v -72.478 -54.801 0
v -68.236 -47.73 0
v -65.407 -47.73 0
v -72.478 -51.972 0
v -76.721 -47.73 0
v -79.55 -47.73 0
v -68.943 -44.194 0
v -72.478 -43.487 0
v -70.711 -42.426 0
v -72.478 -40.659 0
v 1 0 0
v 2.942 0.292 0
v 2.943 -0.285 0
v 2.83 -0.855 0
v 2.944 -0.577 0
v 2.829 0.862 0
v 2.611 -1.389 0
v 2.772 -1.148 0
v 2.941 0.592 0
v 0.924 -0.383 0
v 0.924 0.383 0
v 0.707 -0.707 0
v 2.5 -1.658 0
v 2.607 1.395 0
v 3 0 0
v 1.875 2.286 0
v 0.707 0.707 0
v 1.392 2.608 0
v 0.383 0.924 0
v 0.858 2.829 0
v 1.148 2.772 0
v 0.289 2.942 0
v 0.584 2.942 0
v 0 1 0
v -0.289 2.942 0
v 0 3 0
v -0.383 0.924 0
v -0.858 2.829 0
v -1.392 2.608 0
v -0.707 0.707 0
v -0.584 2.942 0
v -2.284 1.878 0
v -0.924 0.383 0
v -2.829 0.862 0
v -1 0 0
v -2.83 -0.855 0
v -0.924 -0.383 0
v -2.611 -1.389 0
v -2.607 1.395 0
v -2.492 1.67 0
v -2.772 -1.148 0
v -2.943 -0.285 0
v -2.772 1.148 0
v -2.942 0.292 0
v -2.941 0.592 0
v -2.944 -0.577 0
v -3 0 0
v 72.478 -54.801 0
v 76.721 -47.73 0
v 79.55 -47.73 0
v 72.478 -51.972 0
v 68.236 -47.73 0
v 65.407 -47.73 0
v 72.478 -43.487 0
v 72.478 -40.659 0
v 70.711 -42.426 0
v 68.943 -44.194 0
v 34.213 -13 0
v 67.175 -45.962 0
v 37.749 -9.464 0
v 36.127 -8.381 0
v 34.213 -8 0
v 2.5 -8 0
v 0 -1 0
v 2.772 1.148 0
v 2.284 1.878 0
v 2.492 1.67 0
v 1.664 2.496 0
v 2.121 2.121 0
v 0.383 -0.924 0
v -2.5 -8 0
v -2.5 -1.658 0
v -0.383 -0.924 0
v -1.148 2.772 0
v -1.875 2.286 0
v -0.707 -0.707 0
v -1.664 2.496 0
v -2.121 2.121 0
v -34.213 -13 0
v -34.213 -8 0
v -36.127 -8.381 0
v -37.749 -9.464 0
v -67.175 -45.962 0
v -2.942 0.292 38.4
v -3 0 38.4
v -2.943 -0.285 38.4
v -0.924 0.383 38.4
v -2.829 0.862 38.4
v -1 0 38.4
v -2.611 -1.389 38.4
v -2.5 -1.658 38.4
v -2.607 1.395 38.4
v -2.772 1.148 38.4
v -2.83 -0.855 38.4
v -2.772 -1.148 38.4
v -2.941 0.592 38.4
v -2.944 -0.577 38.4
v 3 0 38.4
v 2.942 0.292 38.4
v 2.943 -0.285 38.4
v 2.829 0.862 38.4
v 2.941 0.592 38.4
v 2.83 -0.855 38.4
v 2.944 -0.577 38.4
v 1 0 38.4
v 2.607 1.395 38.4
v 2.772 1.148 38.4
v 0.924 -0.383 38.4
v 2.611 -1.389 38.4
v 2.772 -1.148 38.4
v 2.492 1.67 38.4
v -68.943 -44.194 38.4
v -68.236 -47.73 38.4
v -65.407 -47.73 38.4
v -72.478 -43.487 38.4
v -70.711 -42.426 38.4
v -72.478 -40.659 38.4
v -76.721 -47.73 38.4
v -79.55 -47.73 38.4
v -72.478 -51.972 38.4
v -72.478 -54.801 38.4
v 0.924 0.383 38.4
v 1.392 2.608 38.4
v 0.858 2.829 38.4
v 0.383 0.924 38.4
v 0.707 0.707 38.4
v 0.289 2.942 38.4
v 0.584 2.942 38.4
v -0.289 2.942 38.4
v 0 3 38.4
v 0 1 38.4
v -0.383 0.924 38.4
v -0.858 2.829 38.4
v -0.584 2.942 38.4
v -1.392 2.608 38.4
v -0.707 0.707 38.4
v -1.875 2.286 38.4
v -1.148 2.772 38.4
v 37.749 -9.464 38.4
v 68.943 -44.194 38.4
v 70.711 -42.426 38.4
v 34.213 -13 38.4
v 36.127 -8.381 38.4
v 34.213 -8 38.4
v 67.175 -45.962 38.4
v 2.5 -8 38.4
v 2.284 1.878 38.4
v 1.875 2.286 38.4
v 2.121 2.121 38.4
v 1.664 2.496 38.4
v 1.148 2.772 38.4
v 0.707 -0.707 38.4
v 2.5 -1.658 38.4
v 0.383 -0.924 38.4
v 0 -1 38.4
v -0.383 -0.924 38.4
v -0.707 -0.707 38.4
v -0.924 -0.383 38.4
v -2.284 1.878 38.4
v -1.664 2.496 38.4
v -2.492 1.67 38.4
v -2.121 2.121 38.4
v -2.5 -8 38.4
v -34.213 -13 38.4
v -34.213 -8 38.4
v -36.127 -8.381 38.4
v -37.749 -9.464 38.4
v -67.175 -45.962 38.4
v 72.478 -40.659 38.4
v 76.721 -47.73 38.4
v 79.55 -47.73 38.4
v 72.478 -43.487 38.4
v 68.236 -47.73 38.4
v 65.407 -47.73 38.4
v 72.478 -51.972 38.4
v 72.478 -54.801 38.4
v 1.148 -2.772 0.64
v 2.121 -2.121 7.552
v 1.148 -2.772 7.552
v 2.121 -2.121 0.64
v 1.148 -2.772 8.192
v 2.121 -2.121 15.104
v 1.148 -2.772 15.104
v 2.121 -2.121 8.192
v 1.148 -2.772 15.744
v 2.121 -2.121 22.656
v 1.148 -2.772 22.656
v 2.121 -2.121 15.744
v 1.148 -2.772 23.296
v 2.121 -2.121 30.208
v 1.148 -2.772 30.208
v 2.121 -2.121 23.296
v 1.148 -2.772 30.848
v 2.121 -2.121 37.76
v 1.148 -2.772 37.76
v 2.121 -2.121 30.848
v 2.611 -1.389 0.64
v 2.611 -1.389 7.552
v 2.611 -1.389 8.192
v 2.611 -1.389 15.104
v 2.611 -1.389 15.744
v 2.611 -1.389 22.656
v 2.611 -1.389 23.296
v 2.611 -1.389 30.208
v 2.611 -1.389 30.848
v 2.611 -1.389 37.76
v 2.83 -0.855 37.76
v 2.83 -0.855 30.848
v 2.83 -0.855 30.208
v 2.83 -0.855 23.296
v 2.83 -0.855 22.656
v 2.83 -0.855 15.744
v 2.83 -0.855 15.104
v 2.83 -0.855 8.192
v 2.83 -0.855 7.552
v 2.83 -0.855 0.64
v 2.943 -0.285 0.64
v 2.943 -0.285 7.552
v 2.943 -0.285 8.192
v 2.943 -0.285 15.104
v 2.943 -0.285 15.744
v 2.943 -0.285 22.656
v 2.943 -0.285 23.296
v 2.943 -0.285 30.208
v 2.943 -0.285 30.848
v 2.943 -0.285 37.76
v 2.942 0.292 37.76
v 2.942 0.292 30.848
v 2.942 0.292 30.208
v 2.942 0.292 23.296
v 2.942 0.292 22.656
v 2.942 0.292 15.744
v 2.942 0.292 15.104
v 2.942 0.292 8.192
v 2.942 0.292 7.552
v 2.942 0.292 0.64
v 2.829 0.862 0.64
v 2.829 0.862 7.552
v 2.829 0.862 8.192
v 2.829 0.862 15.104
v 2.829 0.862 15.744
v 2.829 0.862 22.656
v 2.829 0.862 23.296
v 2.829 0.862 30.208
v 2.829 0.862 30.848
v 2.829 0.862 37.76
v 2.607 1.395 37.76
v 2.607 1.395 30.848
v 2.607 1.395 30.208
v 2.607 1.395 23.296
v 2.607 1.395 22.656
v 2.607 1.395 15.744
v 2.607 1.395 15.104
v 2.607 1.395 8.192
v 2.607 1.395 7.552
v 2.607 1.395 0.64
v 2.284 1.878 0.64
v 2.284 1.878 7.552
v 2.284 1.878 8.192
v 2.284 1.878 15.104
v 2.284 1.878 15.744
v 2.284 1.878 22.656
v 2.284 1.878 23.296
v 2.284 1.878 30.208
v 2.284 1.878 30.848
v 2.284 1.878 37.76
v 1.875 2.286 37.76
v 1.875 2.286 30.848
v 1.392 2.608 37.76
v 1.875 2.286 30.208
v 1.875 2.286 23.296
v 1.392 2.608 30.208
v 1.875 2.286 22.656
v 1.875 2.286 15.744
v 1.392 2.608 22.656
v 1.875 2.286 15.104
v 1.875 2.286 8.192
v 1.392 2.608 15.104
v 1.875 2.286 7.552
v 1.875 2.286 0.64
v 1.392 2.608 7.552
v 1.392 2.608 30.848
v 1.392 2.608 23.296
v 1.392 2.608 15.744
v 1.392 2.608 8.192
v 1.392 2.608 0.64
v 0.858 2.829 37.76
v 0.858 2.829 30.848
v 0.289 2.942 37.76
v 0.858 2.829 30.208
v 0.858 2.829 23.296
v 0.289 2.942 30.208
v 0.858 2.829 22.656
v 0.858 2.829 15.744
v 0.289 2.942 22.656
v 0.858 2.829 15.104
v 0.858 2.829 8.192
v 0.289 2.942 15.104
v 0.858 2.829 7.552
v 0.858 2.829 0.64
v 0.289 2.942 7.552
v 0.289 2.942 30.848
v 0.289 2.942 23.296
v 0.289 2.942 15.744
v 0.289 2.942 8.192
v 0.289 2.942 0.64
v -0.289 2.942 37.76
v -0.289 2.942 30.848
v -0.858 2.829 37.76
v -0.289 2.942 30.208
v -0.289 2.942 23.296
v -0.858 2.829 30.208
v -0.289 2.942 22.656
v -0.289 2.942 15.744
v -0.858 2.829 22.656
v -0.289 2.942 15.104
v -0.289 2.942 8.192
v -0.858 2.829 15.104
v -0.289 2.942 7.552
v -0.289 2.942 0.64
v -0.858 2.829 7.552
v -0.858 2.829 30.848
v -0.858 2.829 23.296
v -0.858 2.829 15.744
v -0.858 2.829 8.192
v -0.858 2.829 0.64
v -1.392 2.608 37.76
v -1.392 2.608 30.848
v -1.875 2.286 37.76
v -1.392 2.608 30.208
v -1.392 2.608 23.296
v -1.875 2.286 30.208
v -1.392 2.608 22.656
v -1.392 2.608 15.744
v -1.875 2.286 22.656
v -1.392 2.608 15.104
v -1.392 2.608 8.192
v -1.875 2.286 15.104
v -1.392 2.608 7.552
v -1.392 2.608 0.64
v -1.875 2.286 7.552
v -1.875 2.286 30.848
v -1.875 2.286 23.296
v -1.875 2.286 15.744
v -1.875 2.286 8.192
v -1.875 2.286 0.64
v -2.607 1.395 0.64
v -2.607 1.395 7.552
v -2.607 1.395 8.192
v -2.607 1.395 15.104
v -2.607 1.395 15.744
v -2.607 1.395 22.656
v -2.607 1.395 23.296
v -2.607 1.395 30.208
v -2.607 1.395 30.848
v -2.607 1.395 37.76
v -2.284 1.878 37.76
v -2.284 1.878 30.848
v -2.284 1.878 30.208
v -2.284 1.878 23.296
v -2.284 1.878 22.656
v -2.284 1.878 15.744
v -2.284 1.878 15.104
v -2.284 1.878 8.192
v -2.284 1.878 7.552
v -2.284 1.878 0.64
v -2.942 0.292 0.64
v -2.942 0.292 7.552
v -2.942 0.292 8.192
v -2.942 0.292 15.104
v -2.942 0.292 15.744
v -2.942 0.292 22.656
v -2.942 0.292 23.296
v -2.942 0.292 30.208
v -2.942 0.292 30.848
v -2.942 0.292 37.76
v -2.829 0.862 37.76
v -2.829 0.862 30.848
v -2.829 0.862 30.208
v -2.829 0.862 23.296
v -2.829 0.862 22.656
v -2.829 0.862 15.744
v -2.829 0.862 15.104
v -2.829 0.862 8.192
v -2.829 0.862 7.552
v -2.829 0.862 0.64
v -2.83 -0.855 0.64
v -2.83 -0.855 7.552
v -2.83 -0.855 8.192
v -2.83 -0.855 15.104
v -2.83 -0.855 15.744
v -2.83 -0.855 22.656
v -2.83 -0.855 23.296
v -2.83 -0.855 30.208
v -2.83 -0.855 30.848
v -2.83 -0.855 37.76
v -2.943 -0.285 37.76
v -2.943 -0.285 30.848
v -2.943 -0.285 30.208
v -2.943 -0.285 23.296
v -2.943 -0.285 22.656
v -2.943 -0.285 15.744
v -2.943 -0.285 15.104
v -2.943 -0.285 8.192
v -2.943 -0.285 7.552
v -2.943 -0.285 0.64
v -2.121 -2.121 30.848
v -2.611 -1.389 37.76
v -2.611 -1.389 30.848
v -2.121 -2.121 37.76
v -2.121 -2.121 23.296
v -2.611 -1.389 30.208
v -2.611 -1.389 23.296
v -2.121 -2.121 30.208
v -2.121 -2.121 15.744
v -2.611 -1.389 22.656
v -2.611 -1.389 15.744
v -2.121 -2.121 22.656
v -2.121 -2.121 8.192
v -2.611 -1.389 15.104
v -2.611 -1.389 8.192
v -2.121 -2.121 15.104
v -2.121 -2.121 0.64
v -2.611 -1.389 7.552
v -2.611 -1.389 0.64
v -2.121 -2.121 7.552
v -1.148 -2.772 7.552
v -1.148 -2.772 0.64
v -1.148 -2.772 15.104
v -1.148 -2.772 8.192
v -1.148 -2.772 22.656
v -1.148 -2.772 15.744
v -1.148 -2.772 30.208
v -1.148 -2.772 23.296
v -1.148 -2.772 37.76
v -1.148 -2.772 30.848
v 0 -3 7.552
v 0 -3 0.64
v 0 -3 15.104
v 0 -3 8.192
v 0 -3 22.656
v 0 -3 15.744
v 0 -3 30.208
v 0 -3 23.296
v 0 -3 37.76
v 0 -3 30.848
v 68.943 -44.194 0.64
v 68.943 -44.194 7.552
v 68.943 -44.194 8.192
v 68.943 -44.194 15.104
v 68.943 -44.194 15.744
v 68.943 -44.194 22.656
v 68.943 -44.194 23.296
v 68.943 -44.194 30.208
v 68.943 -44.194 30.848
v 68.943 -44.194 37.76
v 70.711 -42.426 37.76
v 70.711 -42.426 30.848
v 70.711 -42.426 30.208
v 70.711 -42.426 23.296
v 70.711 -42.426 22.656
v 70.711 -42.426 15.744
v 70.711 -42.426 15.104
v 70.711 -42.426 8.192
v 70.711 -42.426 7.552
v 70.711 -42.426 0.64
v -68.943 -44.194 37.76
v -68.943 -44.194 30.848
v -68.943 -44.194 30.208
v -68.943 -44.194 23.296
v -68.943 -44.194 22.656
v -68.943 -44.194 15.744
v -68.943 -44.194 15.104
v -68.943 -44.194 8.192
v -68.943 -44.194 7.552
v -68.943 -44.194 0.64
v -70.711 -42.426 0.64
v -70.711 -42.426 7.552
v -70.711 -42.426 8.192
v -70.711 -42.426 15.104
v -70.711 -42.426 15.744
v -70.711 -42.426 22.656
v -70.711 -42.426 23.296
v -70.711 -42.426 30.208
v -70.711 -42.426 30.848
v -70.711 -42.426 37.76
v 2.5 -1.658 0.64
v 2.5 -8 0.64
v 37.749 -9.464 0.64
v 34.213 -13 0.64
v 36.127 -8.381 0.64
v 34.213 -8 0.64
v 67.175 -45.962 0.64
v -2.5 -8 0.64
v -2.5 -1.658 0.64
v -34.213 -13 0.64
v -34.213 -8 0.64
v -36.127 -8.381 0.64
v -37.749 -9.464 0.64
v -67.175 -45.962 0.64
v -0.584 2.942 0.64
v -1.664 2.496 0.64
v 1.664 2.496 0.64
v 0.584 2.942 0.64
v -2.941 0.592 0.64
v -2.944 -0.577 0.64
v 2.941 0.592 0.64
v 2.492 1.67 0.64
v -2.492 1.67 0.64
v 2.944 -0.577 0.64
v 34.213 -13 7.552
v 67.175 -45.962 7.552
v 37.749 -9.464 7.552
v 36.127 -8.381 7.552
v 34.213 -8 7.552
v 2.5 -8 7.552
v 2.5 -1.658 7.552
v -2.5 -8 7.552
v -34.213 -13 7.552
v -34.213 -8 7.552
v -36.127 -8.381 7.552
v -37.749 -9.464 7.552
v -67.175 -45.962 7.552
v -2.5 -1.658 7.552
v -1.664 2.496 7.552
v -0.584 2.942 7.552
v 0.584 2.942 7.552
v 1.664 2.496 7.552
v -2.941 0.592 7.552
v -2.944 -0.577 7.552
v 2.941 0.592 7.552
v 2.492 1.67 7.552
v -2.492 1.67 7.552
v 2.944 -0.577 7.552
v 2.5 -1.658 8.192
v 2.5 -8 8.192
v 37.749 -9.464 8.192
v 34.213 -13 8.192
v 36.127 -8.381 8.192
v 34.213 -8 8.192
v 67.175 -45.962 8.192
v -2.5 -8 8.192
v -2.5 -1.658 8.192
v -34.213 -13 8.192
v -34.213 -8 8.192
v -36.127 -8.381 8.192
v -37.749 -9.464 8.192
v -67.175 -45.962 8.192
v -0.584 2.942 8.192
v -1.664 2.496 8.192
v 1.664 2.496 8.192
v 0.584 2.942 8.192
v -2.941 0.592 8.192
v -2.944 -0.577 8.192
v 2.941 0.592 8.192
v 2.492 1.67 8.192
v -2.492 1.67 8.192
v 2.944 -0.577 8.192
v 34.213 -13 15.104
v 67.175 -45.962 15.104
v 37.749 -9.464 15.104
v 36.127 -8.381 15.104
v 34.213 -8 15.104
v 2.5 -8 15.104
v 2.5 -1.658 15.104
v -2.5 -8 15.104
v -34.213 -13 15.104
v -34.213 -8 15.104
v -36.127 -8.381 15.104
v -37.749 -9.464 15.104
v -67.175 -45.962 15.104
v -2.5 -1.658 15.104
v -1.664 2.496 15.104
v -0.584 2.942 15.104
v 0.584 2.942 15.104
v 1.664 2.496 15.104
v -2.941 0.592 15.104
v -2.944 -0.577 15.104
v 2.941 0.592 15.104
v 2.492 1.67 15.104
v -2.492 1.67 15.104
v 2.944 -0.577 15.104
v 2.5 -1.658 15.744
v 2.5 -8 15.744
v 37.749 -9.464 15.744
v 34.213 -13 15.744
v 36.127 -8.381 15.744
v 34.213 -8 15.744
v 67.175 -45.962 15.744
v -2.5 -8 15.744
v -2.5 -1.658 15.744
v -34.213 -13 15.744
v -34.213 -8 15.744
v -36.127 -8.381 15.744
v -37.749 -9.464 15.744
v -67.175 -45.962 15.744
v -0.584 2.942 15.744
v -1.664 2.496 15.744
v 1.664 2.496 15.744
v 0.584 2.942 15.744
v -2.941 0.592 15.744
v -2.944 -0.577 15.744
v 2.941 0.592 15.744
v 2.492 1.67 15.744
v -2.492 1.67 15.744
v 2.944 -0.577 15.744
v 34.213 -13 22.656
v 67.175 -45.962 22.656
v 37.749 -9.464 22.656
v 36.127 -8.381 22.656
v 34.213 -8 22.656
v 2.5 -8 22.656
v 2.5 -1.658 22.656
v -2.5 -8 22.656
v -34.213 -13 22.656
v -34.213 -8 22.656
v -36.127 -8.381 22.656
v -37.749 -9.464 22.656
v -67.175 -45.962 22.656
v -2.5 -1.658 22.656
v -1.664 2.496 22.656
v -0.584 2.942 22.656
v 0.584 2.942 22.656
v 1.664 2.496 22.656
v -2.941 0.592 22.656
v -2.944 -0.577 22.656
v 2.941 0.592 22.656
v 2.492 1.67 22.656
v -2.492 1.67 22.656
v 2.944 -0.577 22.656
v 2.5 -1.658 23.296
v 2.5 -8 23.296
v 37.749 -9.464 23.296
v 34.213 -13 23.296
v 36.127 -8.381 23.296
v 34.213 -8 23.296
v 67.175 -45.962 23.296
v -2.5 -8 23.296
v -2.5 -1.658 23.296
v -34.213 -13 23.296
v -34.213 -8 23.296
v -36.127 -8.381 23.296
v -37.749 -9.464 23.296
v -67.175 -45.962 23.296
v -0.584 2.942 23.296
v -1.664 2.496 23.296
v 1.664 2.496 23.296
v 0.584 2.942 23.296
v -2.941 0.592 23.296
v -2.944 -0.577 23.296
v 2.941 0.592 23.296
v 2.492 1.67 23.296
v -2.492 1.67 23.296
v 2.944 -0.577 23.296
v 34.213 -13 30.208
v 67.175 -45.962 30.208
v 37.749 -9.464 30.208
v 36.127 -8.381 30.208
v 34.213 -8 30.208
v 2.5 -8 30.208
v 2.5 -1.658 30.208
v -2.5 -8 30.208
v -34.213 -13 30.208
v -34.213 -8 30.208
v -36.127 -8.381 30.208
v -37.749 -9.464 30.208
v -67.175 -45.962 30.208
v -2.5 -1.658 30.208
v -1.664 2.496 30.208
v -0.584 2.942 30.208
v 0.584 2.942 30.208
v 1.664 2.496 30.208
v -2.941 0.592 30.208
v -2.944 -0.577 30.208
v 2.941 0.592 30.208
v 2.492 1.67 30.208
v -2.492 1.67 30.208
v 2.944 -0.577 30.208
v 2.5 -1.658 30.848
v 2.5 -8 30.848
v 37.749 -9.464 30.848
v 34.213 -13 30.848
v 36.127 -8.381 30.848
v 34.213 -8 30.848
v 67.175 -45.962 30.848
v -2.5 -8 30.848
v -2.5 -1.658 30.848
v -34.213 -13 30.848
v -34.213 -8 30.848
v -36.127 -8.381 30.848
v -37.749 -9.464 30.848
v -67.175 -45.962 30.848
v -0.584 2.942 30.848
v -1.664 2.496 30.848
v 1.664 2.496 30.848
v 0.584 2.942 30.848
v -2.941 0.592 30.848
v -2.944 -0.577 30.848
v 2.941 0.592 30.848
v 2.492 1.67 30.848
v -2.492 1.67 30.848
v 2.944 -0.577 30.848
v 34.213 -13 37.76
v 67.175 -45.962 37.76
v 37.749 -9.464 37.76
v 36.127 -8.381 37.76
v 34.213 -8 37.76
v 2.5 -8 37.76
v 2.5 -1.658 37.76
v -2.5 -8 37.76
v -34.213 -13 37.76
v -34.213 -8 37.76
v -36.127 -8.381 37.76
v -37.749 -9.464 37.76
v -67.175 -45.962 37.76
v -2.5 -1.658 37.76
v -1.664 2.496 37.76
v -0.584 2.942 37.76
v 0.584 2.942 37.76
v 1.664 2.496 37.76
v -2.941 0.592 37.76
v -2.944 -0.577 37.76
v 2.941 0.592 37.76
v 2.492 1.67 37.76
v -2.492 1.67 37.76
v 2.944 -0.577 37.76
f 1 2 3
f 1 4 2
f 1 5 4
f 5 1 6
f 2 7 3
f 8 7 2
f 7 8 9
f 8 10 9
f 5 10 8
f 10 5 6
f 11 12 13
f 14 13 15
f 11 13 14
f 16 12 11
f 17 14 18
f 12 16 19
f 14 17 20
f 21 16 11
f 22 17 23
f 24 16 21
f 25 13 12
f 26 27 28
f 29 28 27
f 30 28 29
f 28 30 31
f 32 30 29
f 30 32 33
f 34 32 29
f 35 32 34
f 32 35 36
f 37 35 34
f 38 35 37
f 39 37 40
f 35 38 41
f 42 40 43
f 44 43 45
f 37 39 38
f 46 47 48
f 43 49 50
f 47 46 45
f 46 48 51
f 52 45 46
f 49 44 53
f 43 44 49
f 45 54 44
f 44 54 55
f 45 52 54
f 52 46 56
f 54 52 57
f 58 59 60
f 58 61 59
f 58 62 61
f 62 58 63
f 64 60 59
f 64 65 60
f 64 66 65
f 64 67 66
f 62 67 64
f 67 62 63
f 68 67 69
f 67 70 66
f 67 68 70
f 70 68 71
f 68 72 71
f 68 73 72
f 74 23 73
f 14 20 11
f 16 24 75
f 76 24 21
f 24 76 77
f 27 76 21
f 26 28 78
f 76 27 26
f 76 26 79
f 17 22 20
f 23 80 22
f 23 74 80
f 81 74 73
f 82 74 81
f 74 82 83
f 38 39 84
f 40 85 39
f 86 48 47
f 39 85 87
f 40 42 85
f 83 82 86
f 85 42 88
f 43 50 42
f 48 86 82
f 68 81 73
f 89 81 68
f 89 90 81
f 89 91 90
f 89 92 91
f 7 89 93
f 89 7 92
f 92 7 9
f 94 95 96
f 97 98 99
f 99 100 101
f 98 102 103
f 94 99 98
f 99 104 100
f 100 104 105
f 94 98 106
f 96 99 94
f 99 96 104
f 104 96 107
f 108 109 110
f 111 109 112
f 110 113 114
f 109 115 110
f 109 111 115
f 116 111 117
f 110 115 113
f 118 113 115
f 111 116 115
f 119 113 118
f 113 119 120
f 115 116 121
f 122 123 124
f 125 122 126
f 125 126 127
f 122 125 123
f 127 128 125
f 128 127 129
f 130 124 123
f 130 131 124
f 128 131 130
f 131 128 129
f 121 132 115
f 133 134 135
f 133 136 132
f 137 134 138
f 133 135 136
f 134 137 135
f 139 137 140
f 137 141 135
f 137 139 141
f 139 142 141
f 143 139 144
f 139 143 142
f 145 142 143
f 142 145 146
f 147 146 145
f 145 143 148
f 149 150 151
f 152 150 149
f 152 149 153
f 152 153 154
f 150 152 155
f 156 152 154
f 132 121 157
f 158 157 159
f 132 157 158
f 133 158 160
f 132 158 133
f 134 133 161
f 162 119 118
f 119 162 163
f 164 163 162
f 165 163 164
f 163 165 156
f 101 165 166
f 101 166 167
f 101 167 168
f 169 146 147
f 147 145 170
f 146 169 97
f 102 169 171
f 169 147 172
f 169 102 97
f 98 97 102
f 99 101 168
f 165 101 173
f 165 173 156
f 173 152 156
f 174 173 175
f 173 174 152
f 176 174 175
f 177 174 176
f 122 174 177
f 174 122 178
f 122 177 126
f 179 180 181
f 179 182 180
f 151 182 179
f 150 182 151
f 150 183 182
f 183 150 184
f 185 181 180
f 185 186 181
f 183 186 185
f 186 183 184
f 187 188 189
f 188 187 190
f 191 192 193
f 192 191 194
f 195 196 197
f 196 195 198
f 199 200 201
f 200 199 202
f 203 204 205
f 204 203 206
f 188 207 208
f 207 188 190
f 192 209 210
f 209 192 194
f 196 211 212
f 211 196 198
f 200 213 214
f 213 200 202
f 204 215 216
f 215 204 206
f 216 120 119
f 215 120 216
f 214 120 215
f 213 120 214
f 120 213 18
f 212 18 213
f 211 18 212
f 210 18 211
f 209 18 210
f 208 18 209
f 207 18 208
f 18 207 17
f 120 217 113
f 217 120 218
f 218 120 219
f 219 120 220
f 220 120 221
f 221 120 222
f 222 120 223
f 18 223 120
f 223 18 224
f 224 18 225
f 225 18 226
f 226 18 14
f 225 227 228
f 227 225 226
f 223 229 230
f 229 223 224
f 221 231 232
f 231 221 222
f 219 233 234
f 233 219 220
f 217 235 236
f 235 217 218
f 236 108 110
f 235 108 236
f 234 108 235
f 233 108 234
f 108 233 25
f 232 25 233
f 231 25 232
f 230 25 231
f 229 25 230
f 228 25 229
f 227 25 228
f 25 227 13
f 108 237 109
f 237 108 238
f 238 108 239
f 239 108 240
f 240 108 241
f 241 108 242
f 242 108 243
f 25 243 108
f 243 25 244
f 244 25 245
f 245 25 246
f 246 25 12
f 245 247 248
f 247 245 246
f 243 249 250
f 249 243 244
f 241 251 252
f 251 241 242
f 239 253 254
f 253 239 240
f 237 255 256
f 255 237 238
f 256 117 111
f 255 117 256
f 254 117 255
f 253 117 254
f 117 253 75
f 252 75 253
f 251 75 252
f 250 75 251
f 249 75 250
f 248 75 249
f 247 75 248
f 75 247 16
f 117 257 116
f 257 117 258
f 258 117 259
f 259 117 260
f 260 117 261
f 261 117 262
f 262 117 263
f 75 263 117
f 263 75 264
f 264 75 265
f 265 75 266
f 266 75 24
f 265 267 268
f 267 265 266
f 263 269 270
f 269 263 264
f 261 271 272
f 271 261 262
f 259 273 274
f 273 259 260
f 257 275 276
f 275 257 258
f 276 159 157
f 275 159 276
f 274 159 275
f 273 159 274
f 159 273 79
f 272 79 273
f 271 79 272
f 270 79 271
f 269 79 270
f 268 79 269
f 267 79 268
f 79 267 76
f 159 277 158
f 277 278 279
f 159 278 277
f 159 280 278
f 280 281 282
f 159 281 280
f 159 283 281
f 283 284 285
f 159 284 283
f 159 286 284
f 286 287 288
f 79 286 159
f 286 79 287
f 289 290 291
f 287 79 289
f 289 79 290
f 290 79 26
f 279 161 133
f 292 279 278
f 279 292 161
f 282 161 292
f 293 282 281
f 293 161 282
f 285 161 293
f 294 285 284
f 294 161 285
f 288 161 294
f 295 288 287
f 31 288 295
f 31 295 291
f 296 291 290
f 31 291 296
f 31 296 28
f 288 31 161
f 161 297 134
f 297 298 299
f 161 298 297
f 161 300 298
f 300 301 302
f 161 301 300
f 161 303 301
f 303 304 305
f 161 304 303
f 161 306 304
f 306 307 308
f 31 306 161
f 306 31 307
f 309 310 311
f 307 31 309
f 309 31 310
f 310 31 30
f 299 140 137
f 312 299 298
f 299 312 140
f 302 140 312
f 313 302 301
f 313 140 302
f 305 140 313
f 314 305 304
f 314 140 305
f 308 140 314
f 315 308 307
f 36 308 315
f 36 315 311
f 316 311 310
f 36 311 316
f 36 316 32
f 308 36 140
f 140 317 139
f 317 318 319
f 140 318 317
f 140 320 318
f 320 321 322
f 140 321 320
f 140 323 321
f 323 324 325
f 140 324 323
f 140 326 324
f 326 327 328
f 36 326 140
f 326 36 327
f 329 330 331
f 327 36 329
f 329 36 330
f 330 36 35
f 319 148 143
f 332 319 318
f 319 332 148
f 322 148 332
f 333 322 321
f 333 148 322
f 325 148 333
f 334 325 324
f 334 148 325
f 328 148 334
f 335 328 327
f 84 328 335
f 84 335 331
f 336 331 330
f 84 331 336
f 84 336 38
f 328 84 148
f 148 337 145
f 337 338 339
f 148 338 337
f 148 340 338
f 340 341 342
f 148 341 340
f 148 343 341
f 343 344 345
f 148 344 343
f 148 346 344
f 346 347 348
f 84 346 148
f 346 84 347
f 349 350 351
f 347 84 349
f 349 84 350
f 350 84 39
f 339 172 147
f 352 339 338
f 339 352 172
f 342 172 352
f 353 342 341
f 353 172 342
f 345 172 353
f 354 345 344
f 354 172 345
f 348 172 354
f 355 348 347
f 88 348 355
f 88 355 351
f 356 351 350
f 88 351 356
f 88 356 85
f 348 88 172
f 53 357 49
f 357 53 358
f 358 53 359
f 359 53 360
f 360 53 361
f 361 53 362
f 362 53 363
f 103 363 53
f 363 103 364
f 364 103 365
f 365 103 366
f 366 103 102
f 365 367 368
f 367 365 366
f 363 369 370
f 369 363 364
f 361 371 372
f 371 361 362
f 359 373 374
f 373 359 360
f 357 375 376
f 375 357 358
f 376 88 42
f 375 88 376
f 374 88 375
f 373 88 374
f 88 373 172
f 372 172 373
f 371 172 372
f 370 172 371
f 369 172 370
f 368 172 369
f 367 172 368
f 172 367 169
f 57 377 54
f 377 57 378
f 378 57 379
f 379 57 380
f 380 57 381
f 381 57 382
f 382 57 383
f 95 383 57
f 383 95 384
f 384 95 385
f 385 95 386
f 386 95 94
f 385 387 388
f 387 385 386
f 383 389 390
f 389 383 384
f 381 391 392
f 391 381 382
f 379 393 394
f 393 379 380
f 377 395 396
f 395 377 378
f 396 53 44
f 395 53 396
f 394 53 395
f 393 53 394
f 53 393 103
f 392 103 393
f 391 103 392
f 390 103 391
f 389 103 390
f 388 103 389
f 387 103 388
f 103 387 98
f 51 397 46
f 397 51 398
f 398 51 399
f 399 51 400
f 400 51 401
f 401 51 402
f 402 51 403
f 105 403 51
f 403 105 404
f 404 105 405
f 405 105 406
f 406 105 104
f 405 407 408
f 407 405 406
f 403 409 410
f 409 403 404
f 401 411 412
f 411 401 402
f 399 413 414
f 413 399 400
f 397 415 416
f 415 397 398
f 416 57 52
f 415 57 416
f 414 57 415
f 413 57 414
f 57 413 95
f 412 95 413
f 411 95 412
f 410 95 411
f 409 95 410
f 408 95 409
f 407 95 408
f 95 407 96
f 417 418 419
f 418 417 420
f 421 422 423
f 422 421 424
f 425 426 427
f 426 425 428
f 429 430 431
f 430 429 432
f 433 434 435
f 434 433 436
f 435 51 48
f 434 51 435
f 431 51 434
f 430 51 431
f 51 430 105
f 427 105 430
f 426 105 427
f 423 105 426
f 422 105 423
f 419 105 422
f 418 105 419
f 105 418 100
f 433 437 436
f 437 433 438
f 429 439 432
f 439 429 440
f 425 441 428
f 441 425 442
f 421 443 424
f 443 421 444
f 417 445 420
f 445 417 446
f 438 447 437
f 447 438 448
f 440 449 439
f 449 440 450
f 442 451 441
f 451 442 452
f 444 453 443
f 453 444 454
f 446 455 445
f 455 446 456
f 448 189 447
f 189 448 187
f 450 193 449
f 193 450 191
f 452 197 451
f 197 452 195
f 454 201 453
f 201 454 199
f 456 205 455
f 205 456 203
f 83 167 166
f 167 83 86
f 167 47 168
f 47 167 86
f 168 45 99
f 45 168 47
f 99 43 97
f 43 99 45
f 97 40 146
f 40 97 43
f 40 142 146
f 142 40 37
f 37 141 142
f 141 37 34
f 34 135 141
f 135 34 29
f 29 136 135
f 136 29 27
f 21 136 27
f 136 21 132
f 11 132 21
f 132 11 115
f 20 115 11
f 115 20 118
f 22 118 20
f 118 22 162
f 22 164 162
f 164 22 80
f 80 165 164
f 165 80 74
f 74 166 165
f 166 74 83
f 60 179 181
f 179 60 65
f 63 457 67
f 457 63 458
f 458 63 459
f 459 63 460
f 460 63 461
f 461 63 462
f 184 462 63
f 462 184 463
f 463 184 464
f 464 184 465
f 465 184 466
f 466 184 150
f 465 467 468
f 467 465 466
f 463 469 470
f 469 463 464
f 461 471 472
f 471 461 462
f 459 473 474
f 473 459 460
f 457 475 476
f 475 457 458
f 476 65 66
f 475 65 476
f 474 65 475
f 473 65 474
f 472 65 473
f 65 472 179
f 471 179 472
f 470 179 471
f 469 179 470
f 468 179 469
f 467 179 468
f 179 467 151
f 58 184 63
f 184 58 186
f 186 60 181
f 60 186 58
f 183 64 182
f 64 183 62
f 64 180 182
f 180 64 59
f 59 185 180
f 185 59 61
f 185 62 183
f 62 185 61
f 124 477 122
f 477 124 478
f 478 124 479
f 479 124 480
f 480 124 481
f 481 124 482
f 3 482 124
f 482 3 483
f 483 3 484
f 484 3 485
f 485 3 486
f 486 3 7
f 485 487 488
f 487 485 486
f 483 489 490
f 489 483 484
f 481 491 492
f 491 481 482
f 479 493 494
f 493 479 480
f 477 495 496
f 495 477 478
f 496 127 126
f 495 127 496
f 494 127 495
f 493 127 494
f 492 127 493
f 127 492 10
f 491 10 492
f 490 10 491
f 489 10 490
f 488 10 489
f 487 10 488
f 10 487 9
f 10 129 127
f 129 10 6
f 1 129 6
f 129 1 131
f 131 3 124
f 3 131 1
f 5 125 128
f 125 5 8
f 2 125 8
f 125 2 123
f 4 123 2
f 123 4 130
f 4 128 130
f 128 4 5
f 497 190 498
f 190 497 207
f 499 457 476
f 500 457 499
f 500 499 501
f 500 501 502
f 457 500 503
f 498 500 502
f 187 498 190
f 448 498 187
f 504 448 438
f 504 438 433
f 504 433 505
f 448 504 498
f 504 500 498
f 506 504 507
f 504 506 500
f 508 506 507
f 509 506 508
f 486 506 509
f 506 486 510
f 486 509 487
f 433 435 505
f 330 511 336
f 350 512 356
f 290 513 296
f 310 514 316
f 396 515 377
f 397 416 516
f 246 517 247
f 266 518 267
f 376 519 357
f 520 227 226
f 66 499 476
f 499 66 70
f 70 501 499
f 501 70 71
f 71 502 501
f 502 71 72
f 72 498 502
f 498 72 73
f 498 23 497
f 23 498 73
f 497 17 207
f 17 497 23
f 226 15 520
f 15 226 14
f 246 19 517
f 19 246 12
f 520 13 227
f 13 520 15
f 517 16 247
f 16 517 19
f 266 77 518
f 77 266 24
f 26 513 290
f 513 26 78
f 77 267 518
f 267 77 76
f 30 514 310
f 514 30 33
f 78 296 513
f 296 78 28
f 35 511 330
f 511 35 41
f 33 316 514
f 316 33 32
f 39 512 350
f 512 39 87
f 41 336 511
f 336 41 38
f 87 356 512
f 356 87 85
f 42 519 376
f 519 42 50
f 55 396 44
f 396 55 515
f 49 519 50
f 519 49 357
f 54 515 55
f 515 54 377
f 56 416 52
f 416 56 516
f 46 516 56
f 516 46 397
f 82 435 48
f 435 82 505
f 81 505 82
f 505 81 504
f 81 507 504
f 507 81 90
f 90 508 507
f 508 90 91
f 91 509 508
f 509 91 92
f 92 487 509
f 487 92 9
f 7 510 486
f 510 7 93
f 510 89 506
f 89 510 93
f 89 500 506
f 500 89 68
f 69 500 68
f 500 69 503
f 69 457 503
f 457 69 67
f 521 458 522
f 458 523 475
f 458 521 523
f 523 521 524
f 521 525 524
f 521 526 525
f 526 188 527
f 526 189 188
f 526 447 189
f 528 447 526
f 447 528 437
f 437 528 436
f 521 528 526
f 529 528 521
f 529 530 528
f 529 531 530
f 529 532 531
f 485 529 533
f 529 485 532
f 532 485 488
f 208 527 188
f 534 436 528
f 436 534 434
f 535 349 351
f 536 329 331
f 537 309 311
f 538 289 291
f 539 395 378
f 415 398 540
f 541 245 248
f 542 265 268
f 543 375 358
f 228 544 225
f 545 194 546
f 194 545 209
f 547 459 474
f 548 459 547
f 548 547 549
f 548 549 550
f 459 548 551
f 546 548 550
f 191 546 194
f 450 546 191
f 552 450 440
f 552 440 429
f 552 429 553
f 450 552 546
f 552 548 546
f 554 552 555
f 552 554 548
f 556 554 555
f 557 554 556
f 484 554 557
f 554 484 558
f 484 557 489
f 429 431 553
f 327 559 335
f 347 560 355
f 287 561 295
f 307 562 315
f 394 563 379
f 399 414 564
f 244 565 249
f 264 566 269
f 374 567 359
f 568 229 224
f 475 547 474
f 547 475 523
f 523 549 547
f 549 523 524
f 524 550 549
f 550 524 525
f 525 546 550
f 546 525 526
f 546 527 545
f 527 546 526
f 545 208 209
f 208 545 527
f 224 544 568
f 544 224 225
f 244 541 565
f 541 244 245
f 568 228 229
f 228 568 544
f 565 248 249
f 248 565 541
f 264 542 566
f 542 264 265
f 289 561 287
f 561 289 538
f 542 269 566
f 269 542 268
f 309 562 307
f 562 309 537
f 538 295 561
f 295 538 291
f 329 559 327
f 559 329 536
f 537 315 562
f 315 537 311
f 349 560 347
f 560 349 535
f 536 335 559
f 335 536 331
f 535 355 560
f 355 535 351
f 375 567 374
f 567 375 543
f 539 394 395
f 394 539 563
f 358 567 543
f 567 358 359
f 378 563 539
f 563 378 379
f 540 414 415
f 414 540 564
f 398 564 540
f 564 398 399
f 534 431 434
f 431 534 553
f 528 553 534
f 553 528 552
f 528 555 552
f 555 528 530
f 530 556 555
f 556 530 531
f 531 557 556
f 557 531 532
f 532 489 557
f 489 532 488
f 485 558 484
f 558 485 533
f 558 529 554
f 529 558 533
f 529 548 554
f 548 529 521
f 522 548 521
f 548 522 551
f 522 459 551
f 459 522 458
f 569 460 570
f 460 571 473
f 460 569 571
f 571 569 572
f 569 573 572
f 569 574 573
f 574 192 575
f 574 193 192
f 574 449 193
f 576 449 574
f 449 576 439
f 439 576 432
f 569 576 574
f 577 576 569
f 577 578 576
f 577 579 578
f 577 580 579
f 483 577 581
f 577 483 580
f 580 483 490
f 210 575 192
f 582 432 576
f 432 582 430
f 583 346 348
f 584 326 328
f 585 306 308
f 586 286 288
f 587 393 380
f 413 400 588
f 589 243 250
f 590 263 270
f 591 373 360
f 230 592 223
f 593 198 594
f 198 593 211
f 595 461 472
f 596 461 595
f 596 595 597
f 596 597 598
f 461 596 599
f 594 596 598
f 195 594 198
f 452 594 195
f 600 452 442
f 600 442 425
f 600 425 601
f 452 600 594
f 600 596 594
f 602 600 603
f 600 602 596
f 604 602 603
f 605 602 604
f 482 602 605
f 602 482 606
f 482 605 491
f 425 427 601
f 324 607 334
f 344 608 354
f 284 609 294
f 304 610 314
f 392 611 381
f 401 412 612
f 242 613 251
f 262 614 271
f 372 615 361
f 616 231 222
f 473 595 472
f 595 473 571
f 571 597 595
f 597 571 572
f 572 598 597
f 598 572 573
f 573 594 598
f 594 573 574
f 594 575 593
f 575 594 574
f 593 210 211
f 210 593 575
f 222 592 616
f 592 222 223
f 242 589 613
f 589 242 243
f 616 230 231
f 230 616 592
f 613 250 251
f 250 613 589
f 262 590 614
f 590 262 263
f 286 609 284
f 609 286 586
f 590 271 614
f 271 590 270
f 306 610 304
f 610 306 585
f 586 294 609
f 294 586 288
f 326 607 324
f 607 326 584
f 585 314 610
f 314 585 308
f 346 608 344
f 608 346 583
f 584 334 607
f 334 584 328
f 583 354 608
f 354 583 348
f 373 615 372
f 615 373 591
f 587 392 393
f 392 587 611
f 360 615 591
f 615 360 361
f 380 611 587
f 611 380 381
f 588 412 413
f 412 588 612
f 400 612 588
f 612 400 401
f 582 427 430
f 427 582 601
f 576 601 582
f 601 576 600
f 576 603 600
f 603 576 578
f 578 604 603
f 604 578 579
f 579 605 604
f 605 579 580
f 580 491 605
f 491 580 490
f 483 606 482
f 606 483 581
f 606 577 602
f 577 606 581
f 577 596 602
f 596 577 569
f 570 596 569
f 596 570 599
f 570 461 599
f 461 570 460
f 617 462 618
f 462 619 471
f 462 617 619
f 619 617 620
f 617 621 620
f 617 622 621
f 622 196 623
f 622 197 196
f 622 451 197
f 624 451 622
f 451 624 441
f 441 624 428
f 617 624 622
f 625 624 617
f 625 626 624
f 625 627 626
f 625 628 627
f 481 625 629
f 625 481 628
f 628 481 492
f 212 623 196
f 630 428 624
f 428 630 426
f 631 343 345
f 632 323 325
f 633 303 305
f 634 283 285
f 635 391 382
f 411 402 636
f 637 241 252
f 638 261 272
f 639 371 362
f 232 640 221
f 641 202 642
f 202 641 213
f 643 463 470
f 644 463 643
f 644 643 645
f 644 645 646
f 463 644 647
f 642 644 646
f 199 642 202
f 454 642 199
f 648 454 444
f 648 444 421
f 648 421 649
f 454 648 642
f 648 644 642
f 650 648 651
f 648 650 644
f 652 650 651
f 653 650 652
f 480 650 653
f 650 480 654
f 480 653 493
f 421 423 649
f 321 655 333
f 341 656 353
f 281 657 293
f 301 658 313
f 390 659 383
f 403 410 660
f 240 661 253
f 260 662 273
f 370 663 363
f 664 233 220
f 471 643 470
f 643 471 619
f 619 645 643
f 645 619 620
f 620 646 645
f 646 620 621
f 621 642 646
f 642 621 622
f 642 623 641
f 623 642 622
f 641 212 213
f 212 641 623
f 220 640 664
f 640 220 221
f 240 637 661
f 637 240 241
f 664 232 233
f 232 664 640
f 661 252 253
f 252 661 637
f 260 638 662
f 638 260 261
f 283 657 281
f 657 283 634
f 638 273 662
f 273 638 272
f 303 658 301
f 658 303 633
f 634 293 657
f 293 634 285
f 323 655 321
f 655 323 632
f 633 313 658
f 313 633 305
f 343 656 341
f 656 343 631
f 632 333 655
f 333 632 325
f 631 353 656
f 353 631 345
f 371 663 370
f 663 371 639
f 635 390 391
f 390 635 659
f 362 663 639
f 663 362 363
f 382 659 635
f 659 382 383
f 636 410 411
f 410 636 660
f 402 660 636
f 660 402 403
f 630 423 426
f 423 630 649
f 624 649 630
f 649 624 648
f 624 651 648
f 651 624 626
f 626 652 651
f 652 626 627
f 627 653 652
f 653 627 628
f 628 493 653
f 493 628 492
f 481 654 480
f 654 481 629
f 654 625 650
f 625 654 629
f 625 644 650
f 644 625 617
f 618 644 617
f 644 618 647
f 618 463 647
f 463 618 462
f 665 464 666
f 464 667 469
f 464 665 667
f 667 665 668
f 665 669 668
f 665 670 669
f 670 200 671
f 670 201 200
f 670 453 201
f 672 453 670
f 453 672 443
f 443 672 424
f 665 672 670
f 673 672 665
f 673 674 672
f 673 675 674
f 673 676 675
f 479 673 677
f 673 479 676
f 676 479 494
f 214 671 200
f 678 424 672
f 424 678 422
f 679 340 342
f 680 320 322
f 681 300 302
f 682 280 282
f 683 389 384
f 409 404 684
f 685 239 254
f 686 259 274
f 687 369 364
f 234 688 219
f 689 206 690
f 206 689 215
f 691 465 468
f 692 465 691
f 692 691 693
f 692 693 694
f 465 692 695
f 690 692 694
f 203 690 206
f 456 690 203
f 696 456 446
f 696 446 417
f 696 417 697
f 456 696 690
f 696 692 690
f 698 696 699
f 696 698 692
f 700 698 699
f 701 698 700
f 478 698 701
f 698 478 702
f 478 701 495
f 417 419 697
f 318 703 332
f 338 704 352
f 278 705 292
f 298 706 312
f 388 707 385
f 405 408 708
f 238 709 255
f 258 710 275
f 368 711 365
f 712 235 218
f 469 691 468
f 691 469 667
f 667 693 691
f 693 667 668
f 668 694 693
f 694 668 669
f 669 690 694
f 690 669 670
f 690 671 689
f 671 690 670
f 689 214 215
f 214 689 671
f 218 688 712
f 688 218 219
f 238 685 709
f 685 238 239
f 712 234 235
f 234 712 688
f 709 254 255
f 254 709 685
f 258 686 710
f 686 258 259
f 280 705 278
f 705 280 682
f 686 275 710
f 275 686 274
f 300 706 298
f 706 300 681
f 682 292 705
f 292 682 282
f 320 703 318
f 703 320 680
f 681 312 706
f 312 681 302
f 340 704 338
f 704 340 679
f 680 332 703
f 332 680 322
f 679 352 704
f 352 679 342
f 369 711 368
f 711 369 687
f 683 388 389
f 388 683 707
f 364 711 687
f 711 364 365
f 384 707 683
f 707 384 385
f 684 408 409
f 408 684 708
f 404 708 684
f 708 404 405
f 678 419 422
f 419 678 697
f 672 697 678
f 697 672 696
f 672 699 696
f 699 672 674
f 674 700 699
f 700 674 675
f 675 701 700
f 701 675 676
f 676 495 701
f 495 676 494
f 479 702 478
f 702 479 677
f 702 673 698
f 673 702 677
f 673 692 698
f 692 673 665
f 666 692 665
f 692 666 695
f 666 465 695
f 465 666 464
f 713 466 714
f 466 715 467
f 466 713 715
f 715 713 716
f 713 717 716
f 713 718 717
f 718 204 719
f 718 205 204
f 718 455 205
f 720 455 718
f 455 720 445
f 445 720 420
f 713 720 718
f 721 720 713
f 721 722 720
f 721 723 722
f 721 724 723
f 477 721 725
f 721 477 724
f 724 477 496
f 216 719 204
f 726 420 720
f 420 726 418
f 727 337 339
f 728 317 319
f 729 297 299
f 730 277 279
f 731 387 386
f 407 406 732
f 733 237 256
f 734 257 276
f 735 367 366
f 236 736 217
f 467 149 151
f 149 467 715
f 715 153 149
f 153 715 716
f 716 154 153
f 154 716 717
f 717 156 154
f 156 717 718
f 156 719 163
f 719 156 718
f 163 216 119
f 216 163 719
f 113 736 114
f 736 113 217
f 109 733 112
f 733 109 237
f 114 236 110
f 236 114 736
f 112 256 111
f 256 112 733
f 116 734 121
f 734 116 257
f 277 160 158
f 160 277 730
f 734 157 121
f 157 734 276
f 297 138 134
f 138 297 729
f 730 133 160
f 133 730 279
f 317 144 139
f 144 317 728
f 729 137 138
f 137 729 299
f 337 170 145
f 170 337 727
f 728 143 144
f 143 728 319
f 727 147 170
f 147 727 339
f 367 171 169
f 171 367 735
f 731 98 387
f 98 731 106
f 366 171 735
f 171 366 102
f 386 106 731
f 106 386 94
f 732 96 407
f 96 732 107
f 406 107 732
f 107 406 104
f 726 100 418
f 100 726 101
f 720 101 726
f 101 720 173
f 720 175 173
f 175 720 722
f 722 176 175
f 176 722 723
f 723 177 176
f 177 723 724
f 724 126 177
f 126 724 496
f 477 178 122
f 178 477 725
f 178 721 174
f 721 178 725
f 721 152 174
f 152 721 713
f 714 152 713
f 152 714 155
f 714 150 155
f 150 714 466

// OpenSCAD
// Generated by Parametrix
ca_spider_faceLegs_0 = [ [ 2.5000, -1.6583 ],[ 2.5000, -8.0000 ],[ 34.2132, -8.0000 ],[ 36.1266, -8.3806 ],[ 37.7487, -9.4645 ],[ 70.7107, -42.4264 ],[ 67.1751, -45.9619 ],[ 34.2132, -13.0000 ],[ -34.2132, -13.0000 ],[ -67.1751, -45.9619 ],[ -70.7107, -42.4264 ],[ -37.7487, -9.4645 ],[ -36.1266, -8.3806 ],[ -34.2132, -8.0000 ],[ -2.5000, -8.0000 ],[ -2.5000, -1.6583 ],[ -2.9440, -0.5772 ],[ -2.9411, 0.5916 ],[ -2.4919, 1.6705 ],[ -1.6644, 2.4959 ],[ -0.5844, 2.9425 ],[ 0.5844, 2.9425 ],[ 1.6644, 2.4959 ],[ 2.4919, 1.6705 ],[ 2.9411, 0.5916 ],[ 2.9440, -0.5772 ],[ 2.5000, -1.6583 ] ];
cb_spider_faceLegs_0 = [  0, 1, 2, 3, 4, 5, 6, 7, 8, 9, 10, 11, 12, 13, 14, 15, 16, 17, 18, 19, 20, 21, 22, 23, 24, 25, 26 ];
ca_spider_faceLegs_1 = [ [ 1.0000, 0.0000 ],[ 0.9239, 0.3827 ],[ 0.7071, 0.7071 ],[ 0.3827, 0.9239 ],[ 0.0000, 1.0000 ],[ -0.3827, 0.9239 ],[ -0.7071, 0.7071 ],[ -0.9239, 0.3827 ],[ -1.0000, 0.0000 ],[ -0.9239, -0.3827 ],[ -0.7071, -0.7071 ],[ -0.3827, -0.9239 ],[ -0.0000, -1.0000 ],[ 0.3827, -0.9239 ],[ 0.7071, -0.7071 ],[ 0.9239, -0.3827 ],[ 1.0000, 0.0000 ] ];
cb_spider_faceLegs_1 = [  27, 28, 29, 30, 31, 32, 33, 34, 35, 36, 37, 38, 39, 40, 41, 42, 43 ];
a_spider_faceLegs = concat(ca_spider_faceLegs_0, ca_spider_faceLegs_1);
b_spider_faceLegs = [cb_spider_faceLegs_0, cb_spider_faceLegs_1];
ca_spider_faceTube_0 = [ [ 3.0000, 0.0000 ],[ 2.7716, 1.1481 ],[ 2.1213, 2.1213 ],[ 1.1481, 2.7716 ],[ 0.0000, 3.0000 ],[ -1.1481, 2.7716 ],[ -2.1213, 2.1213 ],[ -2.7716, 1.1481 ],[ -3.0000, 0.0000 ],[ -2.7716, -1.1481 ],[ -2.1213, -2.1213 ],[ -1.1481, -2.7716 ],[ -0.0000, -3.0000 ],[ 1.1481, -2.7716 ],[ 2.1213, -2.1213 ],[ 2.7716, -1.1481 ],[ 3.0000, 0.0000 ] ];
cb_spider_faceTube_0 = [  0, 1, 2, 3, 4, 5, 6, 7, 8, 9, 10, 11, 12, 13, 14, 15, 16 ];
ca_spider_faceTube_1 = [ [ 1.0000, 0.0000 ],[ 0.9239, 0.3827 ],[ 0.7071, 0.7071 ],[ 0.3827, 0.9239 ],[ 0.0000, 1.0000 ],[ -0.3827, 0.9239 ],[ -0.7071, 0.7071 ],[ -0.9239, 0.3827 ],[ -1.0000, 0.0000 ],[ -0.9239, -0.3827 ],[ -0.7071, -0.7071 ],[ -0.3827, -0.9239 ],[ -0.0000, -1.0000 ],[ 0.3827, -0.9239 ],[ 0.7071, -0.7071 ],[ 0.9239, -0.3827 ],[ 1.0000, 0.0000 ] ];
cb_spider_faceTube_1 = [  17, 18, 19, 20, 21, 22, 23, 24, 25, 26, 27, 28, 29, 30, 31, 32, 33 ];
ca_spider_faceTube_2 = [ [ 72.4784, -40.6586 ],[ 79.5495, -47.7297 ],[ 72.4784, -54.8008 ],[ 65.4074, -47.7297 ],[ 72.4784, -40.6586 ] ];
cb_spider_faceTube_2 = [  34, 35, 36, 37, 38 ];
ca_spider_faceTube_3 = [ [ 72.4784, -43.4871 ],[ 76.7211, -47.7297 ],[ 72.4784, -51.9723 ],[ 68.2358, -47.7297 ],[ 72.4784, -43.4871 ] ];
cb_spider_faceTube_3 = [  39, 40, 41, 42, 43 ];
ca_spider_faceTube_4 = [ [ -72.4784, -40.6586 ],[ -65.4074, -47.7297 ],[ -72.4784, -54.8008 ],[ -79.5495, -47.7297 ],[ -72.4784, -40.6586 ] ];
cb_spider_faceTube_4 = [  44, 45, 46, 47, 48 ];
ca_spider_faceTube_5 = [ [ -72.4784, -43.4871 ],[ -68.2358, -47.7297 ],[ -72.4784, -51.9723 ],[ -76.7211, -47.7297 ],[ -72.4784, -43.4871 ] ];
cb_spider_faceTube_5 = [  49, 50, 51, 52, 53 ];
a_spider_faceTube = concat(ca_spider_faceTube_0, ca_spider_faceTube_1, ca_spider_faceTube_2, ca_spider_faceTube_3, ca_spider_faceTube_4, ca_spider_faceTube_5);
b_spider_faceTube = [cb_spider_faceTube_0, cb_spider_faceTube_1, cb_spider_faceTube_2, cb_spider_faceTube_3, cb_spider_faceTube_4, cb_spider_faceTube_5];
a_spider_faceBody = concat();
b_spider_faceBody = [];

module subpax_spider_tube () {
	translate( [ 0, 0, 0 ])
		rotate( [ 0, 0, 0 ])
			   linear_extrude(height = 38.4) polygon(a_spider_faceTube, b_spider_faceTube);
}

module subpax_spider_leg_0 () {
	translate( [ 0, 0, 0 ])
		rotate( [ 0, 0, 0 ])
			   linear_extrude(height = 0.64) polygon(a_spider_faceLegs, b_spider_faceLegs);
}

module subpax_spider_leg_1 () {
	translate( [ 0, 0, 7.552 ])
		rotate( [ 0, 0, 0 ])
			   linear_extrude(height = 0.64) polygon(a_spider_faceLegs, b_spider_faceLegs);
}

module subpax_spider_leg_2 () {
	translate( [ 0, 0, 15.104 ])
		rotate( [ 0, 0, 0 ])
			   linear_extrude(height = 0.64) polygon(a_spider_faceLegs, b_spider_faceLegs);
}

module subpax_spider_leg_3 () {
	translate( [ 0, 0, 22.656 ])
		rotate( [ 0, 0, 0 ])
			   linear_extrude(height = 0.64) polygon(a_spider_faceLegs, b_spider_faceLegs);
}

module subpax_spider_leg_4 () {
	translate( [ 0, 0, 30.208 ])
		rotate( [ 0, 0, 0 ])
			   linear_extrude(height = 0.64) polygon(a_spider_faceLegs, b_spider_faceLegs);
}

module subpax_spider_leg_5 () {
	translate( [ 0, 0, 37.76 ])
		rotate( [ 0, 0, 0 ])
			   linear_extrude(height = 0.64) polygon(a_spider_faceLegs, b_spider_faceLegs);
}

module pax_spider () {
	union () {
		subpax_spider_tube();
subpax_spider_leg_0();
subpax_spider_leg_1();
subpax_spider_leg_2();
subpax_spider_leg_3();
subpax_spider_leg_4();
subpax_spider_leg_5();
	}
}

pax_spider();
